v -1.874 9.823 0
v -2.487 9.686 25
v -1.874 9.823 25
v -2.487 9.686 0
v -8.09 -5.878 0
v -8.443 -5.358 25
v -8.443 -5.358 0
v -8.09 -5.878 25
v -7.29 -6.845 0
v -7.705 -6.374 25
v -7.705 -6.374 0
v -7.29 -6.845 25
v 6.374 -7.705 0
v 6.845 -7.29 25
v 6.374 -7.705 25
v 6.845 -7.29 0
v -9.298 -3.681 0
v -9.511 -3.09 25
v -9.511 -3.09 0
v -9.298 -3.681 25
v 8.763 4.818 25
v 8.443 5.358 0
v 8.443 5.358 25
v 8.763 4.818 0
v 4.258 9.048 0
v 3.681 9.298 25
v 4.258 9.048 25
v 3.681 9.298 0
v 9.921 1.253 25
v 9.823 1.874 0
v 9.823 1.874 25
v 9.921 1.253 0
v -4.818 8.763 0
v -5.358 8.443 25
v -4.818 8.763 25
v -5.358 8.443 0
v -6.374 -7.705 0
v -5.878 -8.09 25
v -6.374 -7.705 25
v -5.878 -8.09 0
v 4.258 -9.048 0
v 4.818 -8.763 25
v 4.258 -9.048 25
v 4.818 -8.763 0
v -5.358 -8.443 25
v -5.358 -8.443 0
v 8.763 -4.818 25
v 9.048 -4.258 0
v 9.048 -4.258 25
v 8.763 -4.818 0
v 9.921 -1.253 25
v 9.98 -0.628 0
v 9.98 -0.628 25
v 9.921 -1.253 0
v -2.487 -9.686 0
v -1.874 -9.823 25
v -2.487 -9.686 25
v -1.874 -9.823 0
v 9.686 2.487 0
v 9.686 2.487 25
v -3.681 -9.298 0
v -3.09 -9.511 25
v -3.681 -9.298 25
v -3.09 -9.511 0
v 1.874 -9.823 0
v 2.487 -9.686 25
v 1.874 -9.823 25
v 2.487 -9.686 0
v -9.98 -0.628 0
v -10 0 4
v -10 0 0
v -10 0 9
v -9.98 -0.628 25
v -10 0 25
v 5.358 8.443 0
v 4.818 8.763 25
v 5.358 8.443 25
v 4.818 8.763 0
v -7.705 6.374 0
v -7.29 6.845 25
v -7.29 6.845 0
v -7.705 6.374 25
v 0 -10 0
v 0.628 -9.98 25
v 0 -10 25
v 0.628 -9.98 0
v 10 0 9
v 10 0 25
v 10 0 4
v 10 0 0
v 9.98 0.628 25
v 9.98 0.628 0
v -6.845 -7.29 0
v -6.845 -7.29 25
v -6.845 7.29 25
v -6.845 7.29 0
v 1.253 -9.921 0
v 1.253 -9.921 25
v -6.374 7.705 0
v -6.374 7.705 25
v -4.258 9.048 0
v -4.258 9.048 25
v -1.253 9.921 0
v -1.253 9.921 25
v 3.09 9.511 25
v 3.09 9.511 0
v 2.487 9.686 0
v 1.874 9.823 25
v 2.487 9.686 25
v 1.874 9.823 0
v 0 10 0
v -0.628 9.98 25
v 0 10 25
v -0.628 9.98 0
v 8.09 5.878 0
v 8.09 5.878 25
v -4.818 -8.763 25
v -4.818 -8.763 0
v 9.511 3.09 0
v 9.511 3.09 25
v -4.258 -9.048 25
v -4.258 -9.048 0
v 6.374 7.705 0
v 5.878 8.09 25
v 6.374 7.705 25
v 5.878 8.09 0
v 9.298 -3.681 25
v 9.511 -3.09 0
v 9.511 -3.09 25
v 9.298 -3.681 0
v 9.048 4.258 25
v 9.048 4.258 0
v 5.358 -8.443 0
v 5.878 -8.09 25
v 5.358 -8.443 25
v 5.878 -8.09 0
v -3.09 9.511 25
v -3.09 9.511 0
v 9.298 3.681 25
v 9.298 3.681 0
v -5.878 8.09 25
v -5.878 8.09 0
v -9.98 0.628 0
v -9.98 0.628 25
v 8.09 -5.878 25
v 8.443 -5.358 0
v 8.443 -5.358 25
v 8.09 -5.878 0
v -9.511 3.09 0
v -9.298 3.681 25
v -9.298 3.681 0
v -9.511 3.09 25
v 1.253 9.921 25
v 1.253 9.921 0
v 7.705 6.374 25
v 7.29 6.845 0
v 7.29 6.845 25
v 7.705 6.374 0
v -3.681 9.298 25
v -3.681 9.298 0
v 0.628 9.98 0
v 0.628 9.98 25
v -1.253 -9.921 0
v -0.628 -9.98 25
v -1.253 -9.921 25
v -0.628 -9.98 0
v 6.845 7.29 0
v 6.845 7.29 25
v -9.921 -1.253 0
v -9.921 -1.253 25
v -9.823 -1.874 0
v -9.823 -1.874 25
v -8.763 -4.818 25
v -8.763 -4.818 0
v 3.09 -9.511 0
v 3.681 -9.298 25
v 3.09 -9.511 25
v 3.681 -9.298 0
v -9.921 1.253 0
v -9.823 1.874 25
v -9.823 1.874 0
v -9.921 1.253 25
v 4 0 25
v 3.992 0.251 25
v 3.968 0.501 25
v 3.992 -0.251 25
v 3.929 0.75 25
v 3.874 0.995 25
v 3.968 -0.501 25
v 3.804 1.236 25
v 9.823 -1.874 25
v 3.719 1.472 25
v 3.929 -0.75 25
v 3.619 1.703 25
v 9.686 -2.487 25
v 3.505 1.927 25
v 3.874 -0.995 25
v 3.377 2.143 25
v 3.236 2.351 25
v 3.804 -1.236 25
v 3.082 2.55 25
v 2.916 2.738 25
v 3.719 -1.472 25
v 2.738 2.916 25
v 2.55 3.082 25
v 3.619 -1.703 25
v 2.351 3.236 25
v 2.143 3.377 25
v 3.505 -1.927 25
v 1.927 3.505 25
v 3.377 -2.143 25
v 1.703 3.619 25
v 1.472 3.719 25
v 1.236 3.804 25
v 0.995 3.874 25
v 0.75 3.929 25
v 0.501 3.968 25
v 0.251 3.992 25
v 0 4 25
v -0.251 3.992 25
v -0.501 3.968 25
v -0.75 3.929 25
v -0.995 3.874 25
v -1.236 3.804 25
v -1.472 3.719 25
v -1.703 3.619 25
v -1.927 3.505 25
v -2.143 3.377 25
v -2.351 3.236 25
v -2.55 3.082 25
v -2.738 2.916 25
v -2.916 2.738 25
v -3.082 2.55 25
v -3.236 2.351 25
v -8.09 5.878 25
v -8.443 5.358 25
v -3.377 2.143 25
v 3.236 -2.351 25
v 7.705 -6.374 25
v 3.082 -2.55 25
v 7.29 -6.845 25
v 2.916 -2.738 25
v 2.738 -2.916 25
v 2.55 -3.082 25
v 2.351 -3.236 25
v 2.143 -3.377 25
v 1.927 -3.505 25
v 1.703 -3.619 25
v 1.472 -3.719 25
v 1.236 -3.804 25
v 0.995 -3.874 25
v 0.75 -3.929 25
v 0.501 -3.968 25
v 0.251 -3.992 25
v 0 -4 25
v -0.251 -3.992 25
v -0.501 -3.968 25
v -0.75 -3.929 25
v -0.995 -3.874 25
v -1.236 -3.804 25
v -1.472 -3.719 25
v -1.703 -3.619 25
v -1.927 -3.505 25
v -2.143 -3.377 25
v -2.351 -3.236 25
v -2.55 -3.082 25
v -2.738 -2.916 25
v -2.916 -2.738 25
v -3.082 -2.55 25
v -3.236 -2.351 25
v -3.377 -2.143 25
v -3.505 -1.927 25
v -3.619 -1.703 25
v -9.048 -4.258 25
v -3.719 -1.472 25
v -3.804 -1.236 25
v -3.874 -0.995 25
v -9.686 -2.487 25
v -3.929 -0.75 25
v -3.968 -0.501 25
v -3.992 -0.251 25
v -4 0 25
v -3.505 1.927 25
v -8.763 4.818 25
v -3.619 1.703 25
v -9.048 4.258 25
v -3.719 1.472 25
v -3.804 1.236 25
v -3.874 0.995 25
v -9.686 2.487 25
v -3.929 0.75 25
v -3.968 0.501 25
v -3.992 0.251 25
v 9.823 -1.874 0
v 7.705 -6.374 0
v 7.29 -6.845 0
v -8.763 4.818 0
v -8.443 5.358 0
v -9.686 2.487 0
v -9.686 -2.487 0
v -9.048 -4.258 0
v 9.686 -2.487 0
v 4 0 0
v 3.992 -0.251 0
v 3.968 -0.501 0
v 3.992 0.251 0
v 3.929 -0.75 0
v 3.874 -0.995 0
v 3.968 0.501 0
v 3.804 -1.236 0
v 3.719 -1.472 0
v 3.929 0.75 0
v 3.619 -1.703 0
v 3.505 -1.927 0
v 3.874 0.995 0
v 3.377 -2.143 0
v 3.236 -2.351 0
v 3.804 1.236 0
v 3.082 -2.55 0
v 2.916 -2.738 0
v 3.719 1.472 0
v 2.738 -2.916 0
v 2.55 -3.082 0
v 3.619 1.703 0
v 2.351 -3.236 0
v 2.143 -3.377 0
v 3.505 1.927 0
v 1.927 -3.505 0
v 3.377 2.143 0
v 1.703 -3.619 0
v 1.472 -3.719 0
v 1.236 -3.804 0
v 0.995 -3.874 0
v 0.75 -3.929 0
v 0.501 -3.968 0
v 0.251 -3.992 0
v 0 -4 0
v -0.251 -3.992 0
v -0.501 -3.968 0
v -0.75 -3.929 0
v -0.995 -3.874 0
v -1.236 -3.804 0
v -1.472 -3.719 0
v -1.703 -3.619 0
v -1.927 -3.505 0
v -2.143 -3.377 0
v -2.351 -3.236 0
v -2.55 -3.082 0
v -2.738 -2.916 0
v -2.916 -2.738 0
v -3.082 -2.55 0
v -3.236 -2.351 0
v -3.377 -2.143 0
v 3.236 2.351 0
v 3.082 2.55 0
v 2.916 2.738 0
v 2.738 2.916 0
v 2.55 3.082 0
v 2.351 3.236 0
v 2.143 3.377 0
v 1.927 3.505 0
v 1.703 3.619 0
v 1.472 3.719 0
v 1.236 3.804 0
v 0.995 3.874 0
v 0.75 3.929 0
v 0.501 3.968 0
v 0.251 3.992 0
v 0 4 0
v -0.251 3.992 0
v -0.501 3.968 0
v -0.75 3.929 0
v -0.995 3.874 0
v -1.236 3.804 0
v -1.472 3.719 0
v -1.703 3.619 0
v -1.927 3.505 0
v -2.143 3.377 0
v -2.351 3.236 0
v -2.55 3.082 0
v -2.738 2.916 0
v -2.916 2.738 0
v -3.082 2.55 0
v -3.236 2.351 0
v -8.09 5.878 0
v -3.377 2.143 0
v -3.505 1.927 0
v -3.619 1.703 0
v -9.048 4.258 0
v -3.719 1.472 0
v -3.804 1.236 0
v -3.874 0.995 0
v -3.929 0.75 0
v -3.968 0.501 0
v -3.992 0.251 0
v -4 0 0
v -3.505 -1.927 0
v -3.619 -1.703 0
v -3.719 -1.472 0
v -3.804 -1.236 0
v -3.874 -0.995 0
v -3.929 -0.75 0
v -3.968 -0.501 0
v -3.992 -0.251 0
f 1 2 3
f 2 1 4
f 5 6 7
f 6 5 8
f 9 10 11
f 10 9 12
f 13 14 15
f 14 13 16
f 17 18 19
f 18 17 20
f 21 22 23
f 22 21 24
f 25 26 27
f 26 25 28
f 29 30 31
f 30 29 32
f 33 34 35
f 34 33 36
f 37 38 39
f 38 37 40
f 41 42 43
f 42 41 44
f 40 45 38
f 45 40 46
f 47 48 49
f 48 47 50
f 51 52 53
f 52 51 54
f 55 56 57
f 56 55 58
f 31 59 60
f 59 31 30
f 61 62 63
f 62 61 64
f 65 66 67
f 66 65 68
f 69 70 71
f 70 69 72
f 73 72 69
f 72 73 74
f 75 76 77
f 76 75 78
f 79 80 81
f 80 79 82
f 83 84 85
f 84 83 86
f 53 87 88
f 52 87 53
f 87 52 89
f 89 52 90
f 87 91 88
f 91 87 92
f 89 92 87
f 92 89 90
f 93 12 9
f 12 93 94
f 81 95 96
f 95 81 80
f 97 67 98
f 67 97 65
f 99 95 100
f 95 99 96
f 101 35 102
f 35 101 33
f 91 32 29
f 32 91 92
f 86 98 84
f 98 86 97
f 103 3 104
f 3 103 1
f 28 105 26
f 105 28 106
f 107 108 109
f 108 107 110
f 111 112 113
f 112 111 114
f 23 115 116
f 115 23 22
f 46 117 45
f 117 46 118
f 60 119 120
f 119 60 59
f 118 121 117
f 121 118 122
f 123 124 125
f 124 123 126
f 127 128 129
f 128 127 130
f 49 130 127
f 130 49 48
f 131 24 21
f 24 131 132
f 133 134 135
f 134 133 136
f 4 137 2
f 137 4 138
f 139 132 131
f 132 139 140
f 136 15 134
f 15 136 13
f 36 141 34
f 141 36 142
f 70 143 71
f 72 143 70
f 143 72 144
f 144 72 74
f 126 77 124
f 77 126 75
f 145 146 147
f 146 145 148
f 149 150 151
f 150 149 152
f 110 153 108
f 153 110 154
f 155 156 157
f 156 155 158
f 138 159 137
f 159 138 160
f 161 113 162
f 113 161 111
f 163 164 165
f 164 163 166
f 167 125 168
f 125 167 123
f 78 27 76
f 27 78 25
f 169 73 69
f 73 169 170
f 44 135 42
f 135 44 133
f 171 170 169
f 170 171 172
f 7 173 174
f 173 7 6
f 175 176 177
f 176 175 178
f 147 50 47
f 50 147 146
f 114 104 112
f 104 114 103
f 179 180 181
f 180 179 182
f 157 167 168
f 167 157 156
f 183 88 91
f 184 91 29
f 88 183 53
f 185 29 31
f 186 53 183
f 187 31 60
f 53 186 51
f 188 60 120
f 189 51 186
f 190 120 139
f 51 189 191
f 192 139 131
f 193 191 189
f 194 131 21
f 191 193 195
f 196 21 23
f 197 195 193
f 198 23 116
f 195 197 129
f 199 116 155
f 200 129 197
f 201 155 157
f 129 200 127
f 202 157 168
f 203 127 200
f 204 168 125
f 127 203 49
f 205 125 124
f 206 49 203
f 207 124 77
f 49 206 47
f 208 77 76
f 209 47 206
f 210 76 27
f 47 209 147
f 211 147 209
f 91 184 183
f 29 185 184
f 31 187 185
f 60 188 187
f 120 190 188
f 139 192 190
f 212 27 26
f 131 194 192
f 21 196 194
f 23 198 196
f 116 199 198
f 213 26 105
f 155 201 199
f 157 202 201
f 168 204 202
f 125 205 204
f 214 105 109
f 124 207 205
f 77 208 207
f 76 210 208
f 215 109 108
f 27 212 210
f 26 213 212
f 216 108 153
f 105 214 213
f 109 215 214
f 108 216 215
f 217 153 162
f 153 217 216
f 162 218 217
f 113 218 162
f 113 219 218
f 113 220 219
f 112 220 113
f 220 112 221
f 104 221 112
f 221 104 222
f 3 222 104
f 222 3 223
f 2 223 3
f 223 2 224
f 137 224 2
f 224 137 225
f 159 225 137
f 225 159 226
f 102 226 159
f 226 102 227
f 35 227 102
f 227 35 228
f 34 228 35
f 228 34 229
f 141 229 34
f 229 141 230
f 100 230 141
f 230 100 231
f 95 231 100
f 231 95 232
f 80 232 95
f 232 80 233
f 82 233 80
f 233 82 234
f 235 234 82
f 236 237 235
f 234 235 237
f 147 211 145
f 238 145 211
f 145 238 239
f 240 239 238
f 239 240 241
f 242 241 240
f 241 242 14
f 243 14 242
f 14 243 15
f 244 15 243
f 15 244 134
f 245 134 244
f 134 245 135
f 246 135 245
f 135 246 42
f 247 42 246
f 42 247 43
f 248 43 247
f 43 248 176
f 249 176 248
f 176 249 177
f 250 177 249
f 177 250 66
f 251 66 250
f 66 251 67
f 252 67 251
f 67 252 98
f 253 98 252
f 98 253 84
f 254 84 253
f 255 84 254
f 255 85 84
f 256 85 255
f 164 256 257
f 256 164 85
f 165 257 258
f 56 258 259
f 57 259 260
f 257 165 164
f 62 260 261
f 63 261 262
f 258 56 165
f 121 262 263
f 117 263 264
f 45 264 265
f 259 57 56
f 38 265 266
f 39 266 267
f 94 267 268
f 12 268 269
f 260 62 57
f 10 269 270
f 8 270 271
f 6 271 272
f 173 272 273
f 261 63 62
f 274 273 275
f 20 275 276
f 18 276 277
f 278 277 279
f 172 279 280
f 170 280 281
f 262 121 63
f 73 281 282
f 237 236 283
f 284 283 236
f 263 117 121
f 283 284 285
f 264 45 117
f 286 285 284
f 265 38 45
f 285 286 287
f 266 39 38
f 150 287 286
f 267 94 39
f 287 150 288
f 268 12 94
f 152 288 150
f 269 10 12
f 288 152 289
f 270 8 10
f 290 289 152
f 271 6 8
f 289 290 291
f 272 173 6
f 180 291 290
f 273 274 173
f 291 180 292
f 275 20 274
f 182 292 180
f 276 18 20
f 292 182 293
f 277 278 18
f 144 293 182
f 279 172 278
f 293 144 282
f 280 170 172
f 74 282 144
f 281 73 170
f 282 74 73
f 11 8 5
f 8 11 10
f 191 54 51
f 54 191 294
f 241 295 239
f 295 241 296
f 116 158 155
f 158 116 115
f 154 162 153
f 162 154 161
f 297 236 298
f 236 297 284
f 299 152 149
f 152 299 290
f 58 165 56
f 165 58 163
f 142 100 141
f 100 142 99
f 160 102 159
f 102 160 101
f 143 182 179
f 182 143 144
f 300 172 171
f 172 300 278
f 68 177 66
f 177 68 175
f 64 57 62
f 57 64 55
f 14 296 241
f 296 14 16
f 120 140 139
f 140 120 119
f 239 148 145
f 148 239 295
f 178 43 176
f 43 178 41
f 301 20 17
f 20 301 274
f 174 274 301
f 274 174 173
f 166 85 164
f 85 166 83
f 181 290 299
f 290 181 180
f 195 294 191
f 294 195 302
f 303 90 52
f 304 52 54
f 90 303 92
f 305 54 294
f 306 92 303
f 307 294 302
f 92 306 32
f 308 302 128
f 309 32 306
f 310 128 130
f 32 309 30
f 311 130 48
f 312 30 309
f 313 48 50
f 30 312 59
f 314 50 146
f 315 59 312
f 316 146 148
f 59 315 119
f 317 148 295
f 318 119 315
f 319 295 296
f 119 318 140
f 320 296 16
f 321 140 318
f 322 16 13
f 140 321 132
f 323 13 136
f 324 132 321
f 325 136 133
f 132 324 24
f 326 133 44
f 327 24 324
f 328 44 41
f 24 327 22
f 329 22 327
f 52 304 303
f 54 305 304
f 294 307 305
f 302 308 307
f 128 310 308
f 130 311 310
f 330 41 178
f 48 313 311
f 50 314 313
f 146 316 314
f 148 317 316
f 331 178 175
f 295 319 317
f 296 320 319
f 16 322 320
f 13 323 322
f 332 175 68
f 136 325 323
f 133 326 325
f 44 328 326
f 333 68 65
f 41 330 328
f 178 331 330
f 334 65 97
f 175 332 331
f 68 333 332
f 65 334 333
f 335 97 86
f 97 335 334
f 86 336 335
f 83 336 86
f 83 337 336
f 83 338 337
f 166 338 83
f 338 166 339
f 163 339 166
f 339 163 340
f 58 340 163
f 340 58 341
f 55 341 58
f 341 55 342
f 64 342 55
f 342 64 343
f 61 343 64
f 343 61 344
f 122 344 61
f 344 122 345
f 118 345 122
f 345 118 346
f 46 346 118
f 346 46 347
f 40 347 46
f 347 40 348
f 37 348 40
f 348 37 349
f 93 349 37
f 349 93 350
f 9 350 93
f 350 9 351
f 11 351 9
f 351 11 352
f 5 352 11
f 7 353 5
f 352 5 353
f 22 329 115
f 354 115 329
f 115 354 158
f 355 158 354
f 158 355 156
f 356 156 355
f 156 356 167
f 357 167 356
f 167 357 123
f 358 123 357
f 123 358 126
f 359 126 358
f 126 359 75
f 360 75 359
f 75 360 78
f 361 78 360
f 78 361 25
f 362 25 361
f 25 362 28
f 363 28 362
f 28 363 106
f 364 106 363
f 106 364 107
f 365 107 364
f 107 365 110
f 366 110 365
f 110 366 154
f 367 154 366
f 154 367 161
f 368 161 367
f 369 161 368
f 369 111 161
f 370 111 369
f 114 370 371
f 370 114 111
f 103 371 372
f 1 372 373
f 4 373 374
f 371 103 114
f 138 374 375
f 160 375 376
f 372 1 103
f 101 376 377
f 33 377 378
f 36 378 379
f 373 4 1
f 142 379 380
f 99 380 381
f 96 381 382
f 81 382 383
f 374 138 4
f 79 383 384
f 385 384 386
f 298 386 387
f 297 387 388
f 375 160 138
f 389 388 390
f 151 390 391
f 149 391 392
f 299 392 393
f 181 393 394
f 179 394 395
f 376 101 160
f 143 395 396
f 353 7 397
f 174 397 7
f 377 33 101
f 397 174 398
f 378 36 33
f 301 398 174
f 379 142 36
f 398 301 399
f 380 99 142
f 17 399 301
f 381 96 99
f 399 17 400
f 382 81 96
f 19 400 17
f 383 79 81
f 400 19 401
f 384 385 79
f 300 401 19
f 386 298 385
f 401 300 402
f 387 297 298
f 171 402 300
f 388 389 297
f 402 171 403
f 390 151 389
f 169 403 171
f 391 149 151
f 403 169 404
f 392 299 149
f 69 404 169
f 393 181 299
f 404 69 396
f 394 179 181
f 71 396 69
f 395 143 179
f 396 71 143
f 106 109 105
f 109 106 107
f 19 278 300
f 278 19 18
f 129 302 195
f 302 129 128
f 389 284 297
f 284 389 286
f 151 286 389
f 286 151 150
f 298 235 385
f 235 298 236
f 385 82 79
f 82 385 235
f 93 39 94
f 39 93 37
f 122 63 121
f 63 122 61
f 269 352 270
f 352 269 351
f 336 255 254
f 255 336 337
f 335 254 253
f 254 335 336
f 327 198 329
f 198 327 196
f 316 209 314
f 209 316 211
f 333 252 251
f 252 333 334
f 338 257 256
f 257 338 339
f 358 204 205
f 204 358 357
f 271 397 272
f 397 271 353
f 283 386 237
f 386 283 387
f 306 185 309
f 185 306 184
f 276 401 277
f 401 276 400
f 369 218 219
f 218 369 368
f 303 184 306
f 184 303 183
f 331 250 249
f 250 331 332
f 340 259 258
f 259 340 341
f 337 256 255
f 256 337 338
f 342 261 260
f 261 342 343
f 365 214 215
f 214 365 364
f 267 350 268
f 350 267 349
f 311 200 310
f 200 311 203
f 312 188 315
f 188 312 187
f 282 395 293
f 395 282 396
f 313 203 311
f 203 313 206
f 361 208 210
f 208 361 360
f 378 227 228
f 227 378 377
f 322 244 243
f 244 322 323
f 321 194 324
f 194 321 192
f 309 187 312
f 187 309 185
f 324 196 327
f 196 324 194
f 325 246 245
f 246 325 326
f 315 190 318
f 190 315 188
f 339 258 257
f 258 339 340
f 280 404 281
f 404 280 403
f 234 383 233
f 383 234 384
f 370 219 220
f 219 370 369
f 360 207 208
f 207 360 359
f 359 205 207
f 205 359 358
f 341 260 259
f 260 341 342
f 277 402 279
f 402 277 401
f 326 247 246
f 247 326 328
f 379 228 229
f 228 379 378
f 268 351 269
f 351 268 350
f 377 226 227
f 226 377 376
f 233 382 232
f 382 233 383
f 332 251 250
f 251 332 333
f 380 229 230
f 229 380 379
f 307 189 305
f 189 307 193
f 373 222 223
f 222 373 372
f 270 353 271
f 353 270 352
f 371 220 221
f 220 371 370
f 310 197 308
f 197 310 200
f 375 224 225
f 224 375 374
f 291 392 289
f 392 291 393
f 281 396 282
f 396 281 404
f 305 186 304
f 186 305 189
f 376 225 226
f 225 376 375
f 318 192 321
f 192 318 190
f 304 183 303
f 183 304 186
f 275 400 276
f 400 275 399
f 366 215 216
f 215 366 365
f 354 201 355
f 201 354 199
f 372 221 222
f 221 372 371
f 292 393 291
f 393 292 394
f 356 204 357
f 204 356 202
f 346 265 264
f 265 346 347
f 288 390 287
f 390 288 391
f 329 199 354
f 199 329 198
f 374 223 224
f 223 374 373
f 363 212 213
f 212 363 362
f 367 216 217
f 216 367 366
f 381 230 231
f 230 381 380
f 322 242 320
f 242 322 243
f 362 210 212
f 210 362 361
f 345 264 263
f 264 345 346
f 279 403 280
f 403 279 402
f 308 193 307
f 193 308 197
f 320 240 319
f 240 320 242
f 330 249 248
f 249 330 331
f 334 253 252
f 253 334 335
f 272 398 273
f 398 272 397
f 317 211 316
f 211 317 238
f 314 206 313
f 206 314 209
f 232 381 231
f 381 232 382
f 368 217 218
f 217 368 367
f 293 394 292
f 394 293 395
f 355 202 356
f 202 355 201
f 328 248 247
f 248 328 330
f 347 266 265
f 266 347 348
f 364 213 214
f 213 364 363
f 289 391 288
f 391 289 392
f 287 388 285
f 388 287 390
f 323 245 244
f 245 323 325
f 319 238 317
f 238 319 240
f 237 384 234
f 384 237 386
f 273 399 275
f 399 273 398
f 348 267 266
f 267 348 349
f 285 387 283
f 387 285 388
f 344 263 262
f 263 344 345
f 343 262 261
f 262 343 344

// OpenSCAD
// Parameters
shaft_diameter = 20;
shaft_length = 25; // Shortened shaft
bore_diameter = 8;
side_hole_diameter = 5;
side_hole_offset = 6; // Adjusted for shorter shaft
side_hole_depth = shaft_diameter / 2 + 2; // ensure it goes through

module input_shaft() {
    difference() {
        // Main shaft body
        cylinder(h = shaft_length, d = shaft_diameter, $fn = 100);

        // Central bore
        translate([0, 0, 0])
            cylinder(h = shaft_length, d = bore_diameter, $fn = 100);

        // Side holes (2x)
        for (angle = [0, 180]) {
            rotate([0, 0, angle])
                translate([shaft_diameter/2, 0, shaft_length/2 - side_hole_offset])
                    rotate([0, 90, 0])
                        cylinder(h = side_hole_depth, d = side_hole_diameter, $fn = 60);
        }
    }
}

// Render the input shaft
input_shaft();
